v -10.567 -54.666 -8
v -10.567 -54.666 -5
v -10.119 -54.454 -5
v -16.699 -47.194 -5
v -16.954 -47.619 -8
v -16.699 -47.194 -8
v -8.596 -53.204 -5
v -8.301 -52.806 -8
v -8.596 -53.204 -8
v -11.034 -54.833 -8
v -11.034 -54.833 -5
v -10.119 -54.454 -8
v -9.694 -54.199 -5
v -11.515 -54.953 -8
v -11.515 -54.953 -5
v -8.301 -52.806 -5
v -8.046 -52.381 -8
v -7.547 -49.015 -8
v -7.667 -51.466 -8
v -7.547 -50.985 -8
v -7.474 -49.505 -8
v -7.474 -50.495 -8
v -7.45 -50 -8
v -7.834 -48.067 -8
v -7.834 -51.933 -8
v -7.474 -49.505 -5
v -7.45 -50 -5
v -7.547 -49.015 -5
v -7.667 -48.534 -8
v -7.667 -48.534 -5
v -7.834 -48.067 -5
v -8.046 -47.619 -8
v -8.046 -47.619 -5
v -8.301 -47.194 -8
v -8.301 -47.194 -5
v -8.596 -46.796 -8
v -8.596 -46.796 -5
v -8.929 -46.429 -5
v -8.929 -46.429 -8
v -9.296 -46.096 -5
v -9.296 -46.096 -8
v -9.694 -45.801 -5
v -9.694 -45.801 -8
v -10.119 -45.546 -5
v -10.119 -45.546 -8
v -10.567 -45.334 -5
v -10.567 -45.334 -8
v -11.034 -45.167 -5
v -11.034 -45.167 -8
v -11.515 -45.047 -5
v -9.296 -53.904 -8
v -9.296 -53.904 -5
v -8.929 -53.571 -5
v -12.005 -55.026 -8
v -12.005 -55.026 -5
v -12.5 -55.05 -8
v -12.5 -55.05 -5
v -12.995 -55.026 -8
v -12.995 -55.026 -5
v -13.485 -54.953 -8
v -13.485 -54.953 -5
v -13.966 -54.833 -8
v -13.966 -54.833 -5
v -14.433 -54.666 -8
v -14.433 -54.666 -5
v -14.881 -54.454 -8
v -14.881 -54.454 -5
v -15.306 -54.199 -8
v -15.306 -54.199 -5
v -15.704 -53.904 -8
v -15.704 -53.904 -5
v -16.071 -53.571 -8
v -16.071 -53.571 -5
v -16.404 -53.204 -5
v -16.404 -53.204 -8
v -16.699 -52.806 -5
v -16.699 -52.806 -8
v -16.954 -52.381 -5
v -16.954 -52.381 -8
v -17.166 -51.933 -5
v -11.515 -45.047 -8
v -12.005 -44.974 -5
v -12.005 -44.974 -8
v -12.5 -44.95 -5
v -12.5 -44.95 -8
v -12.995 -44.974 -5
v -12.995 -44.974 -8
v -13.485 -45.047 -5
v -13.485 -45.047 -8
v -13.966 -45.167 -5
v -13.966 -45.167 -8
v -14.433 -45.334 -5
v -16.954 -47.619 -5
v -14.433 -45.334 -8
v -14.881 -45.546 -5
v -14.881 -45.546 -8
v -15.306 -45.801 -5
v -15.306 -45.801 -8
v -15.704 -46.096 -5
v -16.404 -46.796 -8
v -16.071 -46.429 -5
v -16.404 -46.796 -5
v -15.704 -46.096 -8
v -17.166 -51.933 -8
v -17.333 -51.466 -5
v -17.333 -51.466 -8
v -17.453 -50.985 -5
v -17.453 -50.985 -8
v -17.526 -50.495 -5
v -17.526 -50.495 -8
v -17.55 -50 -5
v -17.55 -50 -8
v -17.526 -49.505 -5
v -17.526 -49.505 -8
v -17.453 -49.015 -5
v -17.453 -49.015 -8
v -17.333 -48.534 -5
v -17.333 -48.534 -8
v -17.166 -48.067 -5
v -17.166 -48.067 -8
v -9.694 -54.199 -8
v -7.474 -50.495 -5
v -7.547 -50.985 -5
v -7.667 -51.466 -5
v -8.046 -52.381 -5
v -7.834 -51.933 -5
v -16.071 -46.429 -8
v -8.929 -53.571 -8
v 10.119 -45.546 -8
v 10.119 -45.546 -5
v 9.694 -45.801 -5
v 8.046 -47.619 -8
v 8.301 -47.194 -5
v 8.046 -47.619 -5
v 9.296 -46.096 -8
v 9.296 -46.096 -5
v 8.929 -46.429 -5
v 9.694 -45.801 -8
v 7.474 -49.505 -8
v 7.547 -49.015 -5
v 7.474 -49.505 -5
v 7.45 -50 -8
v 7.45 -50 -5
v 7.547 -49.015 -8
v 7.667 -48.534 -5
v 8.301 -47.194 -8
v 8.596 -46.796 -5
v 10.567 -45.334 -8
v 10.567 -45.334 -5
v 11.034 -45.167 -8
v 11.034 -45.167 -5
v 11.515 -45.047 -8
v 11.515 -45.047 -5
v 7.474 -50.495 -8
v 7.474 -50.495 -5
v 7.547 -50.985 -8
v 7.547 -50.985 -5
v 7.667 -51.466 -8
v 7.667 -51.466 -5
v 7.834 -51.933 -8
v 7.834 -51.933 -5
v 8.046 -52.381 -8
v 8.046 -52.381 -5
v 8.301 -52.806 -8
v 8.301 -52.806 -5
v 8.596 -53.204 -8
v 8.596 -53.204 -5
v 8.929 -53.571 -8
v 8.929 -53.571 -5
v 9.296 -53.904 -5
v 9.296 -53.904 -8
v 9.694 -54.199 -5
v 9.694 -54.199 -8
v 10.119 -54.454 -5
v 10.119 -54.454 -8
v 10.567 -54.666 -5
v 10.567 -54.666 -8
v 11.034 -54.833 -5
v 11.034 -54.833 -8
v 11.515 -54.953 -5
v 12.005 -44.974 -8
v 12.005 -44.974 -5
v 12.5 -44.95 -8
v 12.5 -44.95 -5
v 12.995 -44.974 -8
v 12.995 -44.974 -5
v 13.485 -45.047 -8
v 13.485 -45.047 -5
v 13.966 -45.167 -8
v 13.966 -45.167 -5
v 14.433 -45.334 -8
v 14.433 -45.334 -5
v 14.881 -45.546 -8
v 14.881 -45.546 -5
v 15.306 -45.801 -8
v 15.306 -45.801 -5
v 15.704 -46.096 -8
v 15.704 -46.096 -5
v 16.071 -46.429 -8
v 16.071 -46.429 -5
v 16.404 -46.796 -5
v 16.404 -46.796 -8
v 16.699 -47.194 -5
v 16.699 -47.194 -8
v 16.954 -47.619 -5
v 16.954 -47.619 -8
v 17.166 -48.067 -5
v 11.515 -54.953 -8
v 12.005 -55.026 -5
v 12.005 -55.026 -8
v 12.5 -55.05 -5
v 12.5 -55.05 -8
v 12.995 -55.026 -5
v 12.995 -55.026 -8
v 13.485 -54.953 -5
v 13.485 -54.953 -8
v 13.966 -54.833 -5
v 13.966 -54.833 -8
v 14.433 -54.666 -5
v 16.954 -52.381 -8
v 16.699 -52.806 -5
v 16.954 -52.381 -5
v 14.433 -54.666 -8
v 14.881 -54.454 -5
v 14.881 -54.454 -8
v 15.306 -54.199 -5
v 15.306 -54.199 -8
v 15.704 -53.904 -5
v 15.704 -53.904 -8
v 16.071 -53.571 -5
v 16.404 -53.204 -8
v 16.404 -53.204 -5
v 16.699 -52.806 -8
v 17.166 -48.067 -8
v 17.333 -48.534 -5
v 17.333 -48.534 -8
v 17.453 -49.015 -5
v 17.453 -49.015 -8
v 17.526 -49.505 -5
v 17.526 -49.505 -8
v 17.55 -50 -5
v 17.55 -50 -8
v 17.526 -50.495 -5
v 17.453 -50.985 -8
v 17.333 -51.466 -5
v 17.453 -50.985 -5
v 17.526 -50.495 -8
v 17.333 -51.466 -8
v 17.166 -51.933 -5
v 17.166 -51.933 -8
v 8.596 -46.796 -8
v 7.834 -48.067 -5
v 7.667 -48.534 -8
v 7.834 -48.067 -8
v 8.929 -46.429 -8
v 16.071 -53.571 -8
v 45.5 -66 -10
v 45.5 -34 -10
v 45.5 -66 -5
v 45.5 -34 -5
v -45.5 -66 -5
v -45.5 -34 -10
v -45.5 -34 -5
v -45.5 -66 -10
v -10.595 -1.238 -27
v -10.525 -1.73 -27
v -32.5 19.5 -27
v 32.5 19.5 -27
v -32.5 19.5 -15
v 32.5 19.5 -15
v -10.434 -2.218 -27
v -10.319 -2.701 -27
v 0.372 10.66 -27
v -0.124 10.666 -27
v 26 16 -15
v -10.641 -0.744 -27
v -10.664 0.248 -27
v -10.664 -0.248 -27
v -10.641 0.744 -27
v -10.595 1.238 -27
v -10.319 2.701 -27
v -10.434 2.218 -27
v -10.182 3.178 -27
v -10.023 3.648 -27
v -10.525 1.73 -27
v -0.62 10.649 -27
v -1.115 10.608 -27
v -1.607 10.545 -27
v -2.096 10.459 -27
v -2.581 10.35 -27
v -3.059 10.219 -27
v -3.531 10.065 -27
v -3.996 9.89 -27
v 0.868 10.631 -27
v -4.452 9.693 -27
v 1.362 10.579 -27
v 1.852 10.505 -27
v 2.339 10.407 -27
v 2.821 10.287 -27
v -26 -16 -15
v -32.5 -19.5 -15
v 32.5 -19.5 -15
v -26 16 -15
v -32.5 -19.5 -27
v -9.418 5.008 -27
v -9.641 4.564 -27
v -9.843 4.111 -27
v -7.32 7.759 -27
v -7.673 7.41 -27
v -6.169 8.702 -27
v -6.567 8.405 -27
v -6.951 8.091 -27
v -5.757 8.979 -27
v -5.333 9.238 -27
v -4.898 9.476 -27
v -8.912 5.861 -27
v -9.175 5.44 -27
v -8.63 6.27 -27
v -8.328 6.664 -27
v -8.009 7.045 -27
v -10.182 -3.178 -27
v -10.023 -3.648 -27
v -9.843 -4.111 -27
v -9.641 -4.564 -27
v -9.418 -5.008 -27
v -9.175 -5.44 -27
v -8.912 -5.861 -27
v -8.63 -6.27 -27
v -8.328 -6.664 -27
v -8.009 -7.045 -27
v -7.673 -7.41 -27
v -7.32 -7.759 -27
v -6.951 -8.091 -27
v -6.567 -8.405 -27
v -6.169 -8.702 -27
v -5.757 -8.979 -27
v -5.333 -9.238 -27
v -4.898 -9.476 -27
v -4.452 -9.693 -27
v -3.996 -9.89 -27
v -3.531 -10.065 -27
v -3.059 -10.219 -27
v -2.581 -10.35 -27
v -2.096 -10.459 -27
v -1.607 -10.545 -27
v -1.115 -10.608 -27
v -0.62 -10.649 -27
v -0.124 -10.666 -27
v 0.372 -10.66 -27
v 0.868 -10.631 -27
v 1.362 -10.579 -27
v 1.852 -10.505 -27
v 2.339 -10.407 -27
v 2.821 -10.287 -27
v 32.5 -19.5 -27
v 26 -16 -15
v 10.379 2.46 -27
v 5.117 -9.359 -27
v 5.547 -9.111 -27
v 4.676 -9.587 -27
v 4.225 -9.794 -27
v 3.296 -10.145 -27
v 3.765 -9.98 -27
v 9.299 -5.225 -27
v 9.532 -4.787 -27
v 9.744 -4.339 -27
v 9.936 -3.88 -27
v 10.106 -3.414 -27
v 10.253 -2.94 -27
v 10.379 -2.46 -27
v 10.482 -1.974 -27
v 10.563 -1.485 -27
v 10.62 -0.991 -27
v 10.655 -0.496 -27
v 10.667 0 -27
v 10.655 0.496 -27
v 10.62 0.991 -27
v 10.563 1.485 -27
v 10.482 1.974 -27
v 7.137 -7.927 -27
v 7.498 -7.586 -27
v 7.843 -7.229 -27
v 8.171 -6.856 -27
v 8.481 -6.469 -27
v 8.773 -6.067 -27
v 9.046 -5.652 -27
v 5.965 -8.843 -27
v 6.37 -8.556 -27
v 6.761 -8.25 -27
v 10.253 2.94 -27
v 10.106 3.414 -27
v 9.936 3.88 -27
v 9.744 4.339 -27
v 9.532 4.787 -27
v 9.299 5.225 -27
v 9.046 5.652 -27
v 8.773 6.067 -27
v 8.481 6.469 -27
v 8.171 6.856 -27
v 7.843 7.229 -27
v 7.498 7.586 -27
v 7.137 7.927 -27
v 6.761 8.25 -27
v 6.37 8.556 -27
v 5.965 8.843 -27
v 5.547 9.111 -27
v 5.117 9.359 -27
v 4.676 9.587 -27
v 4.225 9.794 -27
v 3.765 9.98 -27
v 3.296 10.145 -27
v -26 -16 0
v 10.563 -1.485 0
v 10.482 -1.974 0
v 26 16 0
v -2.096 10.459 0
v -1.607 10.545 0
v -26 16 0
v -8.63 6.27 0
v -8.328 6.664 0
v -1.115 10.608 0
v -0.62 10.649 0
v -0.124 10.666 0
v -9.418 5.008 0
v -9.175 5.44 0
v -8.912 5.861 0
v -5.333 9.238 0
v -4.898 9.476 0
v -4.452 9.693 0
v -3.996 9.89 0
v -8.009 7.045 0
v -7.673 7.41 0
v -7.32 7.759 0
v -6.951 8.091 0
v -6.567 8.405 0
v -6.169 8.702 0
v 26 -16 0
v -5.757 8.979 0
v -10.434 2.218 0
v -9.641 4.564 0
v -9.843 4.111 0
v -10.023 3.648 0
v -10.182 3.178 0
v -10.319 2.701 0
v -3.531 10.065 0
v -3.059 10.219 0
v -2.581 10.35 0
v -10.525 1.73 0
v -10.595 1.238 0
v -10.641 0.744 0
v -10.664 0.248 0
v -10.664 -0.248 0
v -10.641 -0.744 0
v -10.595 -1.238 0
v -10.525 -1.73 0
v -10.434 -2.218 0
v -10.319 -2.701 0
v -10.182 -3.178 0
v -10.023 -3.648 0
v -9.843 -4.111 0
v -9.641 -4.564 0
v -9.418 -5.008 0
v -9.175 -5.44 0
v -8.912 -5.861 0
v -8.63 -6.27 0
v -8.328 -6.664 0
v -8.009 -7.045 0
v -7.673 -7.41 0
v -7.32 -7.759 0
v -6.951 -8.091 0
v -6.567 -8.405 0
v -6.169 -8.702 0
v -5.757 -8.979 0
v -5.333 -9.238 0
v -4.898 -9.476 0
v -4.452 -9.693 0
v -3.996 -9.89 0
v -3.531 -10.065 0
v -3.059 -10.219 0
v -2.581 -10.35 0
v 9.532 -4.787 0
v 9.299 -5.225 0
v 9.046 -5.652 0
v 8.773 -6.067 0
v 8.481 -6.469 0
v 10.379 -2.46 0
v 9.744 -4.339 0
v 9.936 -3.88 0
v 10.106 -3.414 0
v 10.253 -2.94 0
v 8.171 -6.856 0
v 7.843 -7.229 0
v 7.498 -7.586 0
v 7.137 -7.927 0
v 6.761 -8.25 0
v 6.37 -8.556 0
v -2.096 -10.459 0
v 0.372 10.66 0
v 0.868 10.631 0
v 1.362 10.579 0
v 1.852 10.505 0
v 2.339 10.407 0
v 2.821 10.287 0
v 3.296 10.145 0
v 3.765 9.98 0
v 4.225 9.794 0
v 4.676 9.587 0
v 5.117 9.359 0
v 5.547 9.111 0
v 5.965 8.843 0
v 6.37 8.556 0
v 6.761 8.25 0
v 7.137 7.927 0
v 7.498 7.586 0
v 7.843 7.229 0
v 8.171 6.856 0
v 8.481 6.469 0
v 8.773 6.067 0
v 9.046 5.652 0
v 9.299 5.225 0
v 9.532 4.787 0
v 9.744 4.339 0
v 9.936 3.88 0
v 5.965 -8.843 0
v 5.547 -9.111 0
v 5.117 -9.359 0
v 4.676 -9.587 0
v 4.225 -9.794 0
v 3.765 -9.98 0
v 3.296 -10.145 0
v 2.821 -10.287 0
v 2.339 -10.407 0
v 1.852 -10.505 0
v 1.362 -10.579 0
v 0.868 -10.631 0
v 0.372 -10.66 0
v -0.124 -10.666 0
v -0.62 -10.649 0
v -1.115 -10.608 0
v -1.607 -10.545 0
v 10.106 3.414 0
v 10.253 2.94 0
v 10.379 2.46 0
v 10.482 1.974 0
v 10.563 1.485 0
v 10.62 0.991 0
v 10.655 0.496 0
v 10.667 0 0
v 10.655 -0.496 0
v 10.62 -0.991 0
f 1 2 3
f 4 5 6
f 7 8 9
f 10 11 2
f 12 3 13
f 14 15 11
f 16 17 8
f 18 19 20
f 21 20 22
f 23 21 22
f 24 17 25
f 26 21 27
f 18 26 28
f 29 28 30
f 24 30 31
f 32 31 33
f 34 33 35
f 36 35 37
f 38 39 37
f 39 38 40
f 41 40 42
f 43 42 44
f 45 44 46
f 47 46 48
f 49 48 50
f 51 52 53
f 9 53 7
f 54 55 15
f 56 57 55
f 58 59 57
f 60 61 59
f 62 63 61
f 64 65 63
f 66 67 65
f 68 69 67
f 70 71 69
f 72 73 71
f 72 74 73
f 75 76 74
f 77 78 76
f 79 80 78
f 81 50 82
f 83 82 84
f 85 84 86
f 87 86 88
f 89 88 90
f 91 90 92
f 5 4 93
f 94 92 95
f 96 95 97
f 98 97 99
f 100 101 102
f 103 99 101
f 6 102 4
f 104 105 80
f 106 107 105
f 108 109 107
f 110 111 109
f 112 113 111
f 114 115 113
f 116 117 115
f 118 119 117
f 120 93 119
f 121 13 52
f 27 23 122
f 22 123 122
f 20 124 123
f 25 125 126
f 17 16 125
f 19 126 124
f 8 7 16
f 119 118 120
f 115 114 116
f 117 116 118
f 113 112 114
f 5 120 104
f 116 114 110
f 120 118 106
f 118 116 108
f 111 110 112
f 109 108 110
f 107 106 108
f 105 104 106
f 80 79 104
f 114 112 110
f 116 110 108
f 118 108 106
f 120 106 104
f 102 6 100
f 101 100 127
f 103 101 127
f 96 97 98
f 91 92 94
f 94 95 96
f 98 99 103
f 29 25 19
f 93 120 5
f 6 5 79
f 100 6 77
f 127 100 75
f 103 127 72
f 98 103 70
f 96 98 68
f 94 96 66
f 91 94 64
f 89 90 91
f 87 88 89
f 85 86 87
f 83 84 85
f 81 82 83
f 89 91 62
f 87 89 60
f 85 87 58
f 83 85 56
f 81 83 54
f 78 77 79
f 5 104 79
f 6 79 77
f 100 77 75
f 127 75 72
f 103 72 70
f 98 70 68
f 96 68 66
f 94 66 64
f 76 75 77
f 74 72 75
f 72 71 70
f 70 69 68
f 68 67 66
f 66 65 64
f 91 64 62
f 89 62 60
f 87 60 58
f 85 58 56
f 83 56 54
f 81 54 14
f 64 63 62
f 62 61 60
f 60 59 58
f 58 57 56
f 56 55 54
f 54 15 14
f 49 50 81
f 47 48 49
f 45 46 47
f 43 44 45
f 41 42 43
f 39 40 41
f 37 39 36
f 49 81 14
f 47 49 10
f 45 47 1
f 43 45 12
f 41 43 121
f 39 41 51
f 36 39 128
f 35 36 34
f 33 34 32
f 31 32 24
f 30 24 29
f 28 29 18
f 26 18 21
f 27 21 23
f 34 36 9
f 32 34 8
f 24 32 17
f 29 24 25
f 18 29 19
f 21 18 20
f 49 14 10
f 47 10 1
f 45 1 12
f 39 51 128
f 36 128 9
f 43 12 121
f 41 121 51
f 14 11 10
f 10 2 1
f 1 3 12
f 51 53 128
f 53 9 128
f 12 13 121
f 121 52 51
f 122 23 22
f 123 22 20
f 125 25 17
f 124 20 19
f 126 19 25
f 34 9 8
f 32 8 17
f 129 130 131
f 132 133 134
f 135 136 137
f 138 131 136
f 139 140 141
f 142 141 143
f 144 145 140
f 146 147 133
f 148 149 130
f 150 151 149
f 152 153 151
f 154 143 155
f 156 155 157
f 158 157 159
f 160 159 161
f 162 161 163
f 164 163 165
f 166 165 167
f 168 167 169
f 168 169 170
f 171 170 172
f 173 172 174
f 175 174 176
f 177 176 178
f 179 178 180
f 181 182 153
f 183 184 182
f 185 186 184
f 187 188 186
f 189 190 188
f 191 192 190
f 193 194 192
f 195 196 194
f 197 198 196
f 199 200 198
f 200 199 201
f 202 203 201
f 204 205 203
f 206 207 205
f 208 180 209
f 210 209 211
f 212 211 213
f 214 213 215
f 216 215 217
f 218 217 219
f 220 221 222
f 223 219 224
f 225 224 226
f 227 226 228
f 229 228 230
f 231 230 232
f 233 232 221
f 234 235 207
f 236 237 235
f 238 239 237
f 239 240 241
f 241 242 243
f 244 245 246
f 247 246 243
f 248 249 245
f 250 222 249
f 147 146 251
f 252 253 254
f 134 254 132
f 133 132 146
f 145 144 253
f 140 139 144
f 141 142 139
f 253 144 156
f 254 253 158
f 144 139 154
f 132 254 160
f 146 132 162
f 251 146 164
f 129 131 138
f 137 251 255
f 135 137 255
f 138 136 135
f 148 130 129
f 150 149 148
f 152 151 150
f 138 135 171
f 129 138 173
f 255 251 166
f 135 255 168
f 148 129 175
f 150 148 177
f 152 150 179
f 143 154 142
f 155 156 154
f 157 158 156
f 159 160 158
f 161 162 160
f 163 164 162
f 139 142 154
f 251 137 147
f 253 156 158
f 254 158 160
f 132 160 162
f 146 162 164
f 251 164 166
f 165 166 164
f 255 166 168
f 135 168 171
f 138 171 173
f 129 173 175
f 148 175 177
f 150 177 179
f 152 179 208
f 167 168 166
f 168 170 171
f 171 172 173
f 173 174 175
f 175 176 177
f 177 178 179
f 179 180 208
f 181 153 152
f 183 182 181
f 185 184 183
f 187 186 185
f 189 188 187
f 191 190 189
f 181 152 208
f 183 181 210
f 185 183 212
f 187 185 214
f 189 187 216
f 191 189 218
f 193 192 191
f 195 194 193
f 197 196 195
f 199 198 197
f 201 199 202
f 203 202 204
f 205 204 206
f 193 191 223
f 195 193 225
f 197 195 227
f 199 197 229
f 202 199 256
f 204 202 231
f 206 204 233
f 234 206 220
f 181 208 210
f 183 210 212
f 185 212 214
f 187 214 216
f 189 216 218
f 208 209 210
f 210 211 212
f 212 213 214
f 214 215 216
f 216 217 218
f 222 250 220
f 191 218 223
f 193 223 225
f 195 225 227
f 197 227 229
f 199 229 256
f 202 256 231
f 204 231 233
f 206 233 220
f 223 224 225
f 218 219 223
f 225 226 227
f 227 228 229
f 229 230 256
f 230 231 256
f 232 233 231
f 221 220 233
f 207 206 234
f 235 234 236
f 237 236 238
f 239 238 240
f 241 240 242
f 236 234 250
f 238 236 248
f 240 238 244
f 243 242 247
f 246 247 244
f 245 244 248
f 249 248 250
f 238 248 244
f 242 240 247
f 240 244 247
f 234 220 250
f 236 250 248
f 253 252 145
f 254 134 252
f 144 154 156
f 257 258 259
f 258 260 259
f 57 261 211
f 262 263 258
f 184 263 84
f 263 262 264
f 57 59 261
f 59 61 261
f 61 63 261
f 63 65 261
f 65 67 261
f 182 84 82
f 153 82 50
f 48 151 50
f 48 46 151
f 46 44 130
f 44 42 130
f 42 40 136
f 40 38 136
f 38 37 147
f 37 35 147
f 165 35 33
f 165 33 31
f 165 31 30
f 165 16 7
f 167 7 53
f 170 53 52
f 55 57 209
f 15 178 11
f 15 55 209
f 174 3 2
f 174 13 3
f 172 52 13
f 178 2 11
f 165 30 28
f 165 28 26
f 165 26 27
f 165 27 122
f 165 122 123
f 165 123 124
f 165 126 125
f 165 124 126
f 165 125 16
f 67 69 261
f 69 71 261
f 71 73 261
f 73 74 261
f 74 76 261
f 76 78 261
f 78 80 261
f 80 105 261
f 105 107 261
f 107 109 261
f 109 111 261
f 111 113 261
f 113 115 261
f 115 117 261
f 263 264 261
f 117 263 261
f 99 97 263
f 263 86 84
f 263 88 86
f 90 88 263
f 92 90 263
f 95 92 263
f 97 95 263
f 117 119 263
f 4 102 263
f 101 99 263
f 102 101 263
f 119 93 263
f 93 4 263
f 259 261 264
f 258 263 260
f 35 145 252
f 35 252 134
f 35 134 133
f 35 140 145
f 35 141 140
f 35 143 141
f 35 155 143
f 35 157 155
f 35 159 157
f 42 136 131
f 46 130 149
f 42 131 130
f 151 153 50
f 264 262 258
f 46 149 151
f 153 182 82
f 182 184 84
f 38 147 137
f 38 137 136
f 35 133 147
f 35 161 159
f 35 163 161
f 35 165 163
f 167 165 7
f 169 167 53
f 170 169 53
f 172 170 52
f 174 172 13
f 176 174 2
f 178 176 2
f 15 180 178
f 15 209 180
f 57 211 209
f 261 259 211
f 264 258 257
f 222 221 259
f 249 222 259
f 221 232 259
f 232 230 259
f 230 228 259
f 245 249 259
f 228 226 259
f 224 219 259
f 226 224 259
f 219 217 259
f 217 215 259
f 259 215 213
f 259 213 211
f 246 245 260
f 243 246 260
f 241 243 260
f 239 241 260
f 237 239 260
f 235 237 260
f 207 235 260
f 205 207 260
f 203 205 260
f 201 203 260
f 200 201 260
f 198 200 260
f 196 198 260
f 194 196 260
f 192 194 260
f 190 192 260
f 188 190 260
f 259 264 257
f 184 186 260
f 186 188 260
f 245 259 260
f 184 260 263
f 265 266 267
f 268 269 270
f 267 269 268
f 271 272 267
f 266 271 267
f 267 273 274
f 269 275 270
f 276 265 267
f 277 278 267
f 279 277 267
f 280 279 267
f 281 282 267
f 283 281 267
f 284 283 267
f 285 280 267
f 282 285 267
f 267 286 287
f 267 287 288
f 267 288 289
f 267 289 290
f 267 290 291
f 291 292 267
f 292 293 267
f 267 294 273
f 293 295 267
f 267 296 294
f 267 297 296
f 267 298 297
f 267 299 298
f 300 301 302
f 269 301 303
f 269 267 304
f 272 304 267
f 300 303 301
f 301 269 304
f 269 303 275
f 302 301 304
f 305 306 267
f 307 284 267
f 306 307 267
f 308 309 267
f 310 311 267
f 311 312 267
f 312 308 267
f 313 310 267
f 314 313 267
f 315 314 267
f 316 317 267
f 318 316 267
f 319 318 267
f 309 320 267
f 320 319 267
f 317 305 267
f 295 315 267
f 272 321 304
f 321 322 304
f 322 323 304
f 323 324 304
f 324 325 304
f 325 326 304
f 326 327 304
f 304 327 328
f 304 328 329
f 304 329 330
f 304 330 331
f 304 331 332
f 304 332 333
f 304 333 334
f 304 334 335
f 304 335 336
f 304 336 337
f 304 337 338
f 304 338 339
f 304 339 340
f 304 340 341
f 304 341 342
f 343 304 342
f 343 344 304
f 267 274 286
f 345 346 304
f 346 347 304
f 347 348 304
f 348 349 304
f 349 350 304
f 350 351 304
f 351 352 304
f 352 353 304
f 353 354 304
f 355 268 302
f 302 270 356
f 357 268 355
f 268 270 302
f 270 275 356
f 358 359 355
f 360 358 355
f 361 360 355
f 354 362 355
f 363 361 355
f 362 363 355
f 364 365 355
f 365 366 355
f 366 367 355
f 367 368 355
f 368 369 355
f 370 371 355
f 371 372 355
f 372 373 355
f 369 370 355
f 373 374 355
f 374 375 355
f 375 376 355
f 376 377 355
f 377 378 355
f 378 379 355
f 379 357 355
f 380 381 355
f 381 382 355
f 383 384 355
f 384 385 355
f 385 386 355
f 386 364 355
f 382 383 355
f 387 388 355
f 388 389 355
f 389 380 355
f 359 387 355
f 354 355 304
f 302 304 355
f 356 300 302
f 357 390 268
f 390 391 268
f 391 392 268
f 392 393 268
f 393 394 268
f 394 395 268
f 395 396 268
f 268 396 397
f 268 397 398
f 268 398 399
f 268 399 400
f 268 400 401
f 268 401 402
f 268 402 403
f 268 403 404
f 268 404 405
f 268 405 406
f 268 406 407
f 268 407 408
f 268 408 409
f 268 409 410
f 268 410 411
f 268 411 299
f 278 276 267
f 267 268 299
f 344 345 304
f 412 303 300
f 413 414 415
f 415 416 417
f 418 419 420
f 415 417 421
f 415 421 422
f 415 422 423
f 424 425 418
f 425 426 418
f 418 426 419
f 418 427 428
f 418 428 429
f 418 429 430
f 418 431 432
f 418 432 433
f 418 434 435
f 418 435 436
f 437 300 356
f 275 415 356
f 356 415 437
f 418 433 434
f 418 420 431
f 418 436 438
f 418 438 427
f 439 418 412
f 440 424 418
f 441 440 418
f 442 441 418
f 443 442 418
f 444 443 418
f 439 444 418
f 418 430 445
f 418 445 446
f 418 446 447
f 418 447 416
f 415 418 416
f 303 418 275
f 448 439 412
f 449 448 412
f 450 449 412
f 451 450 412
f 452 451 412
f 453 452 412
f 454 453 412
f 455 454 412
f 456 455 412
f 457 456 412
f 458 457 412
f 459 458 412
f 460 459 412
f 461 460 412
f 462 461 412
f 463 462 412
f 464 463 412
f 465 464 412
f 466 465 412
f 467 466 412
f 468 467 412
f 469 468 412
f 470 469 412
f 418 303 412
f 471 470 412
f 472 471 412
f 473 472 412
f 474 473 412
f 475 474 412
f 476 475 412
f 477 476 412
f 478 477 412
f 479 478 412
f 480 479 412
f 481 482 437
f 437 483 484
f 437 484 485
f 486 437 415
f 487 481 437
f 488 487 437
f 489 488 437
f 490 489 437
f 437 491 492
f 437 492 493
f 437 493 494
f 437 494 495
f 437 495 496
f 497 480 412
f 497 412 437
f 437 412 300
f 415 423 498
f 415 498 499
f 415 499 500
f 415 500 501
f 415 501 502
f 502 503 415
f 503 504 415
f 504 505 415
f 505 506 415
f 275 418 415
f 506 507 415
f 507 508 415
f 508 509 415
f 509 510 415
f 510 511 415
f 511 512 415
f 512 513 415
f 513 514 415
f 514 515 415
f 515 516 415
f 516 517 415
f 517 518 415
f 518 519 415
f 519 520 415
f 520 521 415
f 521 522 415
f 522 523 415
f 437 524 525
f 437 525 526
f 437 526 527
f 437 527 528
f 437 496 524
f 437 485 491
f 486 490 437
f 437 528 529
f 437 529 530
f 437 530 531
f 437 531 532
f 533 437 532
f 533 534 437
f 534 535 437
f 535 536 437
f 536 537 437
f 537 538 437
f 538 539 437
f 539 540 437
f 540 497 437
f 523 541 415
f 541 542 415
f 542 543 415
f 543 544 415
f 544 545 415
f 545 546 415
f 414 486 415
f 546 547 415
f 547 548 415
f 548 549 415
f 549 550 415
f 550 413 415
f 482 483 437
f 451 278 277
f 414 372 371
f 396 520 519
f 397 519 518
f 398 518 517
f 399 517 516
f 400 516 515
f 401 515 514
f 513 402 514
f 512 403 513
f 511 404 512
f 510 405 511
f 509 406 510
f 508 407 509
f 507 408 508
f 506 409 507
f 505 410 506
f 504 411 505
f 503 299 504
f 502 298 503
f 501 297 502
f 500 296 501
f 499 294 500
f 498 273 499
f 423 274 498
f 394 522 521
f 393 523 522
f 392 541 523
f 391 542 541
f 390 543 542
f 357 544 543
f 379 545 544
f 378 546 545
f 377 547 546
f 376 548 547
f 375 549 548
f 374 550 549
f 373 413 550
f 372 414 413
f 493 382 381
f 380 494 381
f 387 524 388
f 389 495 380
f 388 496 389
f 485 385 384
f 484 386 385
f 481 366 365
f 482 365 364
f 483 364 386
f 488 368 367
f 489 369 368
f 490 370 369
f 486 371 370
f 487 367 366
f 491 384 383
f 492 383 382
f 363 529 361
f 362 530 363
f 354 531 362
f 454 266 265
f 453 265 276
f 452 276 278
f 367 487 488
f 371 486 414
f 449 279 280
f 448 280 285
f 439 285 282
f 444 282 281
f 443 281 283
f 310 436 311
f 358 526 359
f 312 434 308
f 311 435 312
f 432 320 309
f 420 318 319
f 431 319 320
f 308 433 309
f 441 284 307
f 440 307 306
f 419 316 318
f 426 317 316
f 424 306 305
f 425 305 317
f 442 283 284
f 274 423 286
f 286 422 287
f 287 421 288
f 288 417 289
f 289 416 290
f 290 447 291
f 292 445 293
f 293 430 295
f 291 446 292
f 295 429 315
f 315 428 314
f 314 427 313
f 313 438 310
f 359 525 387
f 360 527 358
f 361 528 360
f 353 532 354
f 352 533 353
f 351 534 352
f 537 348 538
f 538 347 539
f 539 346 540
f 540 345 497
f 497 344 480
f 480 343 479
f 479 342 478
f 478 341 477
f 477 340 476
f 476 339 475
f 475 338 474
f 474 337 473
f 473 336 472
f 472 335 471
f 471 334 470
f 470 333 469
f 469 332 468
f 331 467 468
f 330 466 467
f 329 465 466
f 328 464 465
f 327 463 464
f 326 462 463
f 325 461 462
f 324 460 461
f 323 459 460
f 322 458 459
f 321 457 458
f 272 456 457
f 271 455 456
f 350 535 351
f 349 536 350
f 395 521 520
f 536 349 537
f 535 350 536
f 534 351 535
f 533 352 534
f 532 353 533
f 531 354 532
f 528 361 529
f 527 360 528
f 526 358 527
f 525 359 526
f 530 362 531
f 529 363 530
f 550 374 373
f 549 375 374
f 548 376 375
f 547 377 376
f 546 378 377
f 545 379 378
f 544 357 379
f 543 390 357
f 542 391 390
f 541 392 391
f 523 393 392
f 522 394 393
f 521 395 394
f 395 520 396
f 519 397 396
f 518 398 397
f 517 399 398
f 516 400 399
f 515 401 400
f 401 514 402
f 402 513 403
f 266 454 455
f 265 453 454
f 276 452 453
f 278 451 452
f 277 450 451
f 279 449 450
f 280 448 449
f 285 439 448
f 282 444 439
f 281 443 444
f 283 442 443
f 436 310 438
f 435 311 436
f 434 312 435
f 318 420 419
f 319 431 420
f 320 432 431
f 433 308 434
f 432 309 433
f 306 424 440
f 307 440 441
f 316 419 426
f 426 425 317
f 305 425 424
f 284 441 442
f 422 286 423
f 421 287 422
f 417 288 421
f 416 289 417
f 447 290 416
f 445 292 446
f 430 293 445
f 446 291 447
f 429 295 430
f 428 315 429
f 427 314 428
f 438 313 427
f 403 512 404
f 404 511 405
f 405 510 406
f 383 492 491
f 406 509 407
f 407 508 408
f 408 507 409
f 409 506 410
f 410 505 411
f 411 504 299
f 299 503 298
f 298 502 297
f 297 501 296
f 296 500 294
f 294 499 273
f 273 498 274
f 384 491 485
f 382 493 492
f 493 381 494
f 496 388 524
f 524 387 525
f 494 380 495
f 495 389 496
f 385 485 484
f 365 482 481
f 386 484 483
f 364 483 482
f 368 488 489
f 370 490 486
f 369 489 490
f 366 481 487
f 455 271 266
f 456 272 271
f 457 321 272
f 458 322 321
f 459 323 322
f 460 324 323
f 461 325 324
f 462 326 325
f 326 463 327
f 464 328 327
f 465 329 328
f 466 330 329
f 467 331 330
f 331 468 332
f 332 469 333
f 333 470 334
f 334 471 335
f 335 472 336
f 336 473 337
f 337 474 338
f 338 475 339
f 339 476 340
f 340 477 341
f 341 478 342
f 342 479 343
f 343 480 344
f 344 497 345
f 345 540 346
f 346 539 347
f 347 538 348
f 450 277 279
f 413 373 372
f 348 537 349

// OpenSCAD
// Render options
$fa = 1;    // Facet per angle
$fs = 0.5;  // Facet size

magnet_diameter = 10;
magnet_diameter_with_buffer = magnet_diameter + 0.1;
magnet_depth = 3;

laser_magnet_spread = 25;
laser_backing_height=91;
laser_backing_width=32;

mount_laser_depth = 5;

camera_stable_grip_height = 65;
camera_grip_width = 25;
camera_grip_depth = 12;
camera_grip_overhang = 23; // add safety to this
camera_grip_overhang_with_buffer = camera_grip_overhang + 4;
camera_grip_overhang_width = 39;

module magnet_hole() {
  cylinder(r=magnet_diameter_with_buffer/2, h=magnet_depth);
  // cylinder(r=magnet_diameter_with_buffer/3, h=magnet_depth+1);
}

module laser_mount() {
  difference() {
    translate([-laser_backing_height/2,-laser_backing_width/2,0]) cube([laser_backing_height, laser_backing_width, mount_laser_depth]);

    translate([-laser_magnet_spread/2,0,0]) {
      magnet_hole();
      translate([laser_magnet_spread,0,0]) magnet_hole();
    }
  }
}


module camera_grip() {
  connection_ratio = 0.8;
  connection_width = laser_backing_width;
  connection_height = camera_stable_grip_height * connection_ratio;
  connection_depth = camera_grip_overhang_with_buffer - camera_grip_depth;
  translate([0,0,connection_depth]) {
    difference() {
      union() {
        translate([0,0,camera_grip_depth/2]) cube([camera_stable_grip_height,camera_grip_overhang_width,camera_grip_depth], center=true);
        translate([0,0,-camera_grip_overhang_with_buffer/2 + camera_grip_depth]) cube([connection_height,connection_width,camera_grip_overhang_with_buffer], center=true);
      }
      translate([0,0,-50]) cylinder(r=laser_backing_width/3, h=100);
    }
  }
}


rotate([180]) {
translate([0,50,mount_laser_depth]) laser_mount();

camera_grip();
}
